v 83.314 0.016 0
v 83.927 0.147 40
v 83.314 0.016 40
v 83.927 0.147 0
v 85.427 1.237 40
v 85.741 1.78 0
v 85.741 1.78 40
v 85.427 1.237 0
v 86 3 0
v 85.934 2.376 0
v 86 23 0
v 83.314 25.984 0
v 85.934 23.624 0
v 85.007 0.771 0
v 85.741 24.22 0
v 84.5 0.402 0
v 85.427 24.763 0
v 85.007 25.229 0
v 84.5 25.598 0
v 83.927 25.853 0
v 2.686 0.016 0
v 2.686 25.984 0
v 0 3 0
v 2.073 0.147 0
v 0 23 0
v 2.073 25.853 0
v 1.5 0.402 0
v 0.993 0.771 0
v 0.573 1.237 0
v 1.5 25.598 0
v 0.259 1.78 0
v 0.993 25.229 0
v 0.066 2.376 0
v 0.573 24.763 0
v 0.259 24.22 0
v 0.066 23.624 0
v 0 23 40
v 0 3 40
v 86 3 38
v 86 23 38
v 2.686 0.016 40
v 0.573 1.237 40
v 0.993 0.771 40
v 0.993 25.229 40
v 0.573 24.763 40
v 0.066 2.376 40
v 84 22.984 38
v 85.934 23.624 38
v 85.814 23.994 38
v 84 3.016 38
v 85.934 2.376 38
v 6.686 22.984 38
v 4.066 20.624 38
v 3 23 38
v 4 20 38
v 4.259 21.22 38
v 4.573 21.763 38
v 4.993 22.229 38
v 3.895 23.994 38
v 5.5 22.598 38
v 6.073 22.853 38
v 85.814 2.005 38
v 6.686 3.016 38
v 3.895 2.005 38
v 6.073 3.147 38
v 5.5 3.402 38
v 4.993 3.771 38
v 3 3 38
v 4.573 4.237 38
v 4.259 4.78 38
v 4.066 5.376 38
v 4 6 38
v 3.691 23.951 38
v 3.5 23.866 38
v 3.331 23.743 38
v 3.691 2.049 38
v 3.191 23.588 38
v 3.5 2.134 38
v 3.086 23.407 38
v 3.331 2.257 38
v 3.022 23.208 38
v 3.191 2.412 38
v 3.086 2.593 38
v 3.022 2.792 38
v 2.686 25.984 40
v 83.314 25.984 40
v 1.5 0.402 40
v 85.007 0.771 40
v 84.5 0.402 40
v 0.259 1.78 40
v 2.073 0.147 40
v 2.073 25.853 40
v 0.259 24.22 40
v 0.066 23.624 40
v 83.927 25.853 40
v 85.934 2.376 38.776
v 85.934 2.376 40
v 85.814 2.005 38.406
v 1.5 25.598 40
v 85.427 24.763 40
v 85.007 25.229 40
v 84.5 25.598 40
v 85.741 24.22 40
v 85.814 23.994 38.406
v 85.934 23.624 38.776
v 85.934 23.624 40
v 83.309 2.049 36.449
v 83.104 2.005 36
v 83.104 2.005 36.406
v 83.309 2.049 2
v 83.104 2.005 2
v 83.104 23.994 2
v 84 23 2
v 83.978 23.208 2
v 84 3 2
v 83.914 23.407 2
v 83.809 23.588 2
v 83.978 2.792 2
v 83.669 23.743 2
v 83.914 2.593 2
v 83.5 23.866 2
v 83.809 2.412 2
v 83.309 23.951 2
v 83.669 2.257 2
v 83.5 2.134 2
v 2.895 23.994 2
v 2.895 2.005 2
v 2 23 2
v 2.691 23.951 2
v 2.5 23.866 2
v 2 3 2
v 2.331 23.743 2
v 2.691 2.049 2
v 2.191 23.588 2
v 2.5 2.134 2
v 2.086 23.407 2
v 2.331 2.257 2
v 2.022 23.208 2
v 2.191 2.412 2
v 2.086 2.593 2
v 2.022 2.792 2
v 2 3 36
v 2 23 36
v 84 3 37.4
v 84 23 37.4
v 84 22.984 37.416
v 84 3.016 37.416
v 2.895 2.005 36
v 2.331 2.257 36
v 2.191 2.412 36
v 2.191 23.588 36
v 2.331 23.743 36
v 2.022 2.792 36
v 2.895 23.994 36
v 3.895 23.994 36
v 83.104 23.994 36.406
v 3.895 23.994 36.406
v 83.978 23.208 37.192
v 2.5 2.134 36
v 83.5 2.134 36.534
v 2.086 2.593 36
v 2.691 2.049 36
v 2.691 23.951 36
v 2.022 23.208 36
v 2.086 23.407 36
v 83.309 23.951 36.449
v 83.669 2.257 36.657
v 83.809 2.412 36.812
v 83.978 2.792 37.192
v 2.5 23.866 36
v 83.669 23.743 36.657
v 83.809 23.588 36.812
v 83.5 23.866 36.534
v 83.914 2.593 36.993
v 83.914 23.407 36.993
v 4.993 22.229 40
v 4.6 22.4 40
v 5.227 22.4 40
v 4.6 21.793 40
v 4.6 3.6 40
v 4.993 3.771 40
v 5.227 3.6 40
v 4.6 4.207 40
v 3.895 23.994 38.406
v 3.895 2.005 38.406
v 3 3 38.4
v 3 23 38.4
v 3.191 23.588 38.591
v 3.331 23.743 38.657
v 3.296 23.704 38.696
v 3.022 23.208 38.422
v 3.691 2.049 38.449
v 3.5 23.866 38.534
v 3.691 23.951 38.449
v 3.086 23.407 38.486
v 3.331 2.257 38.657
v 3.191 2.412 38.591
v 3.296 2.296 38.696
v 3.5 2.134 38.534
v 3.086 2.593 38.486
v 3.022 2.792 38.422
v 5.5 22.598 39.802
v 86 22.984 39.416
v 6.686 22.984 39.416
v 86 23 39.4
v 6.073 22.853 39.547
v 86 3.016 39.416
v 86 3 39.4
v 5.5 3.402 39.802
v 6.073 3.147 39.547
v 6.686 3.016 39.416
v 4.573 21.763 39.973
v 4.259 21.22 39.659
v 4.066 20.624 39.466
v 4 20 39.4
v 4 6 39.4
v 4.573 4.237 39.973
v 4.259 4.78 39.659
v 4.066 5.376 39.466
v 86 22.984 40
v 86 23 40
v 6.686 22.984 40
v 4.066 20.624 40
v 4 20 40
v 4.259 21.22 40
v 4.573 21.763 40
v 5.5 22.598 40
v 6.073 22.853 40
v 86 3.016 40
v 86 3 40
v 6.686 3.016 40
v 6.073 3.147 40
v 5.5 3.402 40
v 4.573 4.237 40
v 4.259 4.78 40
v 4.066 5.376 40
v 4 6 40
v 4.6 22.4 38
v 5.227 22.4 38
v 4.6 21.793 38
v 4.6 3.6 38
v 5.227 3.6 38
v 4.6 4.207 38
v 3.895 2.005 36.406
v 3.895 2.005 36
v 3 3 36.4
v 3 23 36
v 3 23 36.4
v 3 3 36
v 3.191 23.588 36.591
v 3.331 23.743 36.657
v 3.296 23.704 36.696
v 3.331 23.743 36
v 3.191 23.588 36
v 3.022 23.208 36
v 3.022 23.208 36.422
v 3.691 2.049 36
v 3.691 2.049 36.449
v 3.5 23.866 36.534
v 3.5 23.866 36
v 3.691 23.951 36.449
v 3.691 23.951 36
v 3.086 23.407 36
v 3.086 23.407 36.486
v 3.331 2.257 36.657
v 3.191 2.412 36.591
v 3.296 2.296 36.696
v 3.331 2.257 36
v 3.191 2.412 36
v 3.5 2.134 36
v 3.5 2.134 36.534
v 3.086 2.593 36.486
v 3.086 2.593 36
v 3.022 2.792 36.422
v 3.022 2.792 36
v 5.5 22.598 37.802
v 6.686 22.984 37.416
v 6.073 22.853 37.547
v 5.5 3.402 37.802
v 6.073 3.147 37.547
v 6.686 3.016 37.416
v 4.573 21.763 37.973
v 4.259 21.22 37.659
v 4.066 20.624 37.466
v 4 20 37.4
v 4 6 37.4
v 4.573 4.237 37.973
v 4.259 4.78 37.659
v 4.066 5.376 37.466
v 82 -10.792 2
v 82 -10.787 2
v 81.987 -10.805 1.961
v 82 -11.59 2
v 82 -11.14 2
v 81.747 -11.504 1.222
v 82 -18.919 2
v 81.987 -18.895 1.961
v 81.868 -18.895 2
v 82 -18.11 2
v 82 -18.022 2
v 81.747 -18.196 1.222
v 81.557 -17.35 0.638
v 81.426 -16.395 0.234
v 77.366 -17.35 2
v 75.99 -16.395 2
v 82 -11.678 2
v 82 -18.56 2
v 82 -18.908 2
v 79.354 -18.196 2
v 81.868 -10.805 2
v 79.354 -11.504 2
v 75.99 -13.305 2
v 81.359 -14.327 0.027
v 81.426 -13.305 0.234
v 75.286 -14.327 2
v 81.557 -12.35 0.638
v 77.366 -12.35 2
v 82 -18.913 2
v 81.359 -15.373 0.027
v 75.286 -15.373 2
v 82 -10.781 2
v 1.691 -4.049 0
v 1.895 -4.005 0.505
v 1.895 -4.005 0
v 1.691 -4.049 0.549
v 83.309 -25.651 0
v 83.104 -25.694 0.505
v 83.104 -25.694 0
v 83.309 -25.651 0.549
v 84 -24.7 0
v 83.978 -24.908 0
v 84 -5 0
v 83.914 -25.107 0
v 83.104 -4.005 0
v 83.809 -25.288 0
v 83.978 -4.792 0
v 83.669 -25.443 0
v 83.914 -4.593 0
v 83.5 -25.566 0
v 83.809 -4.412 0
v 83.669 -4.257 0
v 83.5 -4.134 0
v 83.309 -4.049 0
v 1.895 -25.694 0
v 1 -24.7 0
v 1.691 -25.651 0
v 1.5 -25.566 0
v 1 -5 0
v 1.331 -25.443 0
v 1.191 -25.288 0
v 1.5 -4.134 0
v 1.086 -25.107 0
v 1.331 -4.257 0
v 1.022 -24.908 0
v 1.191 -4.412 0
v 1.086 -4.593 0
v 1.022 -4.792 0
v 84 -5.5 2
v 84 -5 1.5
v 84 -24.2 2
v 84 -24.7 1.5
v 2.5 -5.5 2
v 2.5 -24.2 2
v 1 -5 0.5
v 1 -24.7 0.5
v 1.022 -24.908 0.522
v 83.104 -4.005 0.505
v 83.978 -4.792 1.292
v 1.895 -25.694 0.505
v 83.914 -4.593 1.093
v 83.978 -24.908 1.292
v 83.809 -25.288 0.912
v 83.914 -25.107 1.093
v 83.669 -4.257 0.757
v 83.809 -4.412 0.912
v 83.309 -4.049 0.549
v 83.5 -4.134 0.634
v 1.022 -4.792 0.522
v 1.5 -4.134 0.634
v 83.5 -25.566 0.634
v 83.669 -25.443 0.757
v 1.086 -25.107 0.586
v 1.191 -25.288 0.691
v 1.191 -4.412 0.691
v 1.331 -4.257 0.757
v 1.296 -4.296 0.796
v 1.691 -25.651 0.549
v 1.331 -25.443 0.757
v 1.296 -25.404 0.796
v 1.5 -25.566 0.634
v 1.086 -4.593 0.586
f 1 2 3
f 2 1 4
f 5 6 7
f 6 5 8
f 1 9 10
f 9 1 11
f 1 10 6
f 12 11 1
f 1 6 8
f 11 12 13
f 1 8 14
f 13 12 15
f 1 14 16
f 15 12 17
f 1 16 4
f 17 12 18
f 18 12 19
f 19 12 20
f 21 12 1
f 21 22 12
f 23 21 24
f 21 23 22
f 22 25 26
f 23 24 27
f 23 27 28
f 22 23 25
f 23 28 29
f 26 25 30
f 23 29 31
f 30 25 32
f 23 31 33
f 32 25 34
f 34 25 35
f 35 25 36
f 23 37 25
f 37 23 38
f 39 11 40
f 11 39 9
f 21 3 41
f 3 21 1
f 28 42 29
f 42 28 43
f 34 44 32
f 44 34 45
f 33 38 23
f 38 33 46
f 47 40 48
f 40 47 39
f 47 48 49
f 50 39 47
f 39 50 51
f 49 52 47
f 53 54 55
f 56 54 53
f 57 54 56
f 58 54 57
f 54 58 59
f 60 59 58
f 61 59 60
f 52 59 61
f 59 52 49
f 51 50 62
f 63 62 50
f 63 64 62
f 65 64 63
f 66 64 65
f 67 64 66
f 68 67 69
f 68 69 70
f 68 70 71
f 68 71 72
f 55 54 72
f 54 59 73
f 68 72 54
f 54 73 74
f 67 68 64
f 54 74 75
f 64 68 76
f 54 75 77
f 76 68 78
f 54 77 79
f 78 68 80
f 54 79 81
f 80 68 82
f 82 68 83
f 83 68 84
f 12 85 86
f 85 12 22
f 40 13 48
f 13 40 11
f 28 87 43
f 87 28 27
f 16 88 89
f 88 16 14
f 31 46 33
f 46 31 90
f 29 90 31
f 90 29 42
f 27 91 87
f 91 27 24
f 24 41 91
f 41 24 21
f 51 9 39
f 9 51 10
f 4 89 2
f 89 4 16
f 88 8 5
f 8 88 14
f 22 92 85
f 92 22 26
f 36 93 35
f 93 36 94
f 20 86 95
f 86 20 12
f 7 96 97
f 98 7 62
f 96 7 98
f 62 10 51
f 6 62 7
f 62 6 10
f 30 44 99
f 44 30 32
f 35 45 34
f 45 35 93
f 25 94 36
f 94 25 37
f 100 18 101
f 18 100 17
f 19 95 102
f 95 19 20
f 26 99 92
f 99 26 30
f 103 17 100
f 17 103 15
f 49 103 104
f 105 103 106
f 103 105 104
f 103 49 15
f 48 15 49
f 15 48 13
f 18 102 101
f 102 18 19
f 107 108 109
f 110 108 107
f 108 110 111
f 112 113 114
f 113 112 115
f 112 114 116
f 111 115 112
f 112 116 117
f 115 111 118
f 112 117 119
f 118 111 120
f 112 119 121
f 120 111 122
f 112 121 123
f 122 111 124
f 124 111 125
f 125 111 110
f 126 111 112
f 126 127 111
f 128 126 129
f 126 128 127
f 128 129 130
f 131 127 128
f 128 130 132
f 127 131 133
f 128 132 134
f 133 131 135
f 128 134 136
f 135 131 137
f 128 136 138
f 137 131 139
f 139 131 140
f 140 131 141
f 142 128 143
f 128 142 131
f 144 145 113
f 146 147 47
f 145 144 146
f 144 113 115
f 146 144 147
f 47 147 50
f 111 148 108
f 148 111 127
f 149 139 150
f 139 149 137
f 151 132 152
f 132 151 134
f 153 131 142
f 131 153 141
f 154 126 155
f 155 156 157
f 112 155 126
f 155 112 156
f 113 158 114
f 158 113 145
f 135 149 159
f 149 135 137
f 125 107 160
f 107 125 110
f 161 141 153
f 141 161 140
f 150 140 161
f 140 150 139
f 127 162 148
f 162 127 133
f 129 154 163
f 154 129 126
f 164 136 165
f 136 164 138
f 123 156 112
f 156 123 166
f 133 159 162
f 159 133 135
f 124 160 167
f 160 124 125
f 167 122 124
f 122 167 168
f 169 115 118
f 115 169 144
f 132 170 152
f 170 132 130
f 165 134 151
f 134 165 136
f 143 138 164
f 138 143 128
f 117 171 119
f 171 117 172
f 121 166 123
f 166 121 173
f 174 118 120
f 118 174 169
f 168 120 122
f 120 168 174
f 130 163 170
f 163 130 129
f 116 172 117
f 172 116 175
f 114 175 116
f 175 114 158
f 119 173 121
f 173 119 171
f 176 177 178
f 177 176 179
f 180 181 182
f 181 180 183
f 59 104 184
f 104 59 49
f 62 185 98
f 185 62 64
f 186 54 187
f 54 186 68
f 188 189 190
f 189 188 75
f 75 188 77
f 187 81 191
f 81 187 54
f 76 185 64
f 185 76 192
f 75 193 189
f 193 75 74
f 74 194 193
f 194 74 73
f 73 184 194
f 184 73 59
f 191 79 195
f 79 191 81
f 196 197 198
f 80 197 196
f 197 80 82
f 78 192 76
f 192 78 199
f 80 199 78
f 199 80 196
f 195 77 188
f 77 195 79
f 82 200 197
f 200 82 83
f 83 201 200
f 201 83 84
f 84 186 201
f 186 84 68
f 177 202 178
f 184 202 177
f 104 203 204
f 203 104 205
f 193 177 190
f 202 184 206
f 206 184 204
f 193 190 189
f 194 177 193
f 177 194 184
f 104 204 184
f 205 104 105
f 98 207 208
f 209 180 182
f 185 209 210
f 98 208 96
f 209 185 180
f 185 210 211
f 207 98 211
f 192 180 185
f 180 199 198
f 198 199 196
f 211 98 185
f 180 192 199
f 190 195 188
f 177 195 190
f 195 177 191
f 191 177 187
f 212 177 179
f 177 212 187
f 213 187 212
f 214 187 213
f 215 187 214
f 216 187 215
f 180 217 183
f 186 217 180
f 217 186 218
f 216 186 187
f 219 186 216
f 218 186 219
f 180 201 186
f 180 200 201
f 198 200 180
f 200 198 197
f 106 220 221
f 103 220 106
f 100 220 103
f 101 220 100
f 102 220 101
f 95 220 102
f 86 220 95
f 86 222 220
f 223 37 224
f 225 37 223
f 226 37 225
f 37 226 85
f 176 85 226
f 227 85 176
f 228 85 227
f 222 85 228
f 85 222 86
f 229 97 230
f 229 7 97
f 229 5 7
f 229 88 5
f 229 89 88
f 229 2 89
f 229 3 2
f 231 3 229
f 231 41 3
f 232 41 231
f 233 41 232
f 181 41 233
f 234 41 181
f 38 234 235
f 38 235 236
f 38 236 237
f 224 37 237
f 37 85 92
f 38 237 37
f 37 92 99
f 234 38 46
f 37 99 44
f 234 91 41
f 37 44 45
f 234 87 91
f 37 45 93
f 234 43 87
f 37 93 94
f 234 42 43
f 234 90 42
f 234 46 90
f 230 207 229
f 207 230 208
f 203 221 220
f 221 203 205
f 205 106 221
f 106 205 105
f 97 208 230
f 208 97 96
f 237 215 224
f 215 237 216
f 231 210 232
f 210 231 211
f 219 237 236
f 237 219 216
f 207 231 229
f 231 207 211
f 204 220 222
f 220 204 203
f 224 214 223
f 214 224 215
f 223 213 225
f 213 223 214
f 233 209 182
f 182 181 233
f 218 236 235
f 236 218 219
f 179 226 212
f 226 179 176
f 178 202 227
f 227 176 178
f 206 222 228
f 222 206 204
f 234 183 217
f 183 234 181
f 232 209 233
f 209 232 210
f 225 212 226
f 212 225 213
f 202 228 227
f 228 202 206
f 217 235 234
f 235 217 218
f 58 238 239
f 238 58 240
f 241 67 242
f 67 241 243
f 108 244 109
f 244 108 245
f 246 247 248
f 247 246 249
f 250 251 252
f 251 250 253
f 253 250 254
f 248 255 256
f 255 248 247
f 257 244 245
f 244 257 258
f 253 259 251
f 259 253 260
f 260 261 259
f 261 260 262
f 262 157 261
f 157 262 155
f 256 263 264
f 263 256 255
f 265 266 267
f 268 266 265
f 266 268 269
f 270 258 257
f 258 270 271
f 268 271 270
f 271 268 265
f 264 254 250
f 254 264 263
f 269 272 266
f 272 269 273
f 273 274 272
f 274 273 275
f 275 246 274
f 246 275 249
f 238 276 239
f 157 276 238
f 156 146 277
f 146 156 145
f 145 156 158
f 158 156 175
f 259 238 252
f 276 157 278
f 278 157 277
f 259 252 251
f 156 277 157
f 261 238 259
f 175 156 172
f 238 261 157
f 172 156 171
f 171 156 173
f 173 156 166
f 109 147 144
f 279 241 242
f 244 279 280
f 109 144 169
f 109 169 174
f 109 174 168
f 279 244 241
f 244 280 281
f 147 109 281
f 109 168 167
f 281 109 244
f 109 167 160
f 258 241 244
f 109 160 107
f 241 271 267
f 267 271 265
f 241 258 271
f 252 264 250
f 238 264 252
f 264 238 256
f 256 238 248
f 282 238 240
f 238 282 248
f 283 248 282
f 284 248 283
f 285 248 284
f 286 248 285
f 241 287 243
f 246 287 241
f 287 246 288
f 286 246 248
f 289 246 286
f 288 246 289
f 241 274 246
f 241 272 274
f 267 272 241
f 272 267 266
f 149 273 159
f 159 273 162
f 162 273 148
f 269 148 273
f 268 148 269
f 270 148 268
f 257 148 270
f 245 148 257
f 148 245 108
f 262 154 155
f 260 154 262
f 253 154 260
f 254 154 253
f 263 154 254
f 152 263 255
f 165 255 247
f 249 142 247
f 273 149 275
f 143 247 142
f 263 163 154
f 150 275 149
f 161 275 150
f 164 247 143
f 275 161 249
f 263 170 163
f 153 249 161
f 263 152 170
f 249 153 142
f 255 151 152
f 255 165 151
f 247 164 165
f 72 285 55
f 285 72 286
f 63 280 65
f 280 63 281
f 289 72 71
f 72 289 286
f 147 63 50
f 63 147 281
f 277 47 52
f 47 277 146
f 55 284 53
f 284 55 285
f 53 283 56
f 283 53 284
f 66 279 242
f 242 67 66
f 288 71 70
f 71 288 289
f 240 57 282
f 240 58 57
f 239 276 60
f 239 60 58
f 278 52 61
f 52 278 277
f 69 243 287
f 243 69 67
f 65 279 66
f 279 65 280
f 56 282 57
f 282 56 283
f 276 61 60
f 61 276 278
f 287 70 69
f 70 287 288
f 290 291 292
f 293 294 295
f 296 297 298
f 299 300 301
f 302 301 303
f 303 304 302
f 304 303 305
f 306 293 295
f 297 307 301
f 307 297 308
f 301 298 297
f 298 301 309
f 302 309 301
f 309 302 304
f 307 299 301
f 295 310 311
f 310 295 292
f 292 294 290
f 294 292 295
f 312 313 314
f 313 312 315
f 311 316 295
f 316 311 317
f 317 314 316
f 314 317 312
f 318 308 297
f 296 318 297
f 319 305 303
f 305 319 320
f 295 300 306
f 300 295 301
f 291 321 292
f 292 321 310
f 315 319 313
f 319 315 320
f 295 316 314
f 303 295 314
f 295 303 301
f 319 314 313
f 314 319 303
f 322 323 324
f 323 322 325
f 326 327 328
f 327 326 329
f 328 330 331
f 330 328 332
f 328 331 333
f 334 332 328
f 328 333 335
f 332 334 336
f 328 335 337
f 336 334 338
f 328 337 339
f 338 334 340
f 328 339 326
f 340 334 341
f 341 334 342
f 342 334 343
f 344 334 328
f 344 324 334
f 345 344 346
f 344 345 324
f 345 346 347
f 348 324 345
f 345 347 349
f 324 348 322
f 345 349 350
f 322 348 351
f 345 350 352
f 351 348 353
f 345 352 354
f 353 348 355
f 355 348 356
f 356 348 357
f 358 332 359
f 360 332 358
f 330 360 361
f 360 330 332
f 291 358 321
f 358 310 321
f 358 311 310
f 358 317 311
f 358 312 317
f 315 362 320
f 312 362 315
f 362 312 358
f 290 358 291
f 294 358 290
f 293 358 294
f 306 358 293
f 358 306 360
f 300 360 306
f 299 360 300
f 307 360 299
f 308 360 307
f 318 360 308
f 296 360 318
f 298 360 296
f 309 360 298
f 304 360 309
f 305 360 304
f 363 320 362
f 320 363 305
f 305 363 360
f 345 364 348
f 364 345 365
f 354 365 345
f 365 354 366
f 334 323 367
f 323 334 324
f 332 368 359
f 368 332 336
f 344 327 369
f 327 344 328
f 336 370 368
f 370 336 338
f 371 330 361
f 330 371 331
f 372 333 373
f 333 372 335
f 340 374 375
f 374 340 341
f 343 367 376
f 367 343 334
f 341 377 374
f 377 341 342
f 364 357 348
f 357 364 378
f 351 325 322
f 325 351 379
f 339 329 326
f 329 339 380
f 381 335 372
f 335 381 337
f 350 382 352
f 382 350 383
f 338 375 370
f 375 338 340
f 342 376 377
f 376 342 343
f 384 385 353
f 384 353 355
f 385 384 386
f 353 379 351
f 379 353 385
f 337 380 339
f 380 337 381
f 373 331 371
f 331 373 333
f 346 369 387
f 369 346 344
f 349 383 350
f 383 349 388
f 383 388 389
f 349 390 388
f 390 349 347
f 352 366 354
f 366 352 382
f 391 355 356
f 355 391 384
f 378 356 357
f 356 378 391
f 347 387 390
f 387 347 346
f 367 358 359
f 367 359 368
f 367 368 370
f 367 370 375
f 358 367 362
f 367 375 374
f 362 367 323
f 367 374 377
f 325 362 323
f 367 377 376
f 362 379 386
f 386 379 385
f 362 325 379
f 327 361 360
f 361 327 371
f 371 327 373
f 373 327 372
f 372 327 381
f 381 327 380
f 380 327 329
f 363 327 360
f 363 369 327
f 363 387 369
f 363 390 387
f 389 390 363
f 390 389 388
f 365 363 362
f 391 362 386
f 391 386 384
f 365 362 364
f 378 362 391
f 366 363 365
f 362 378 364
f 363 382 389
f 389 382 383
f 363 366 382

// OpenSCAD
itemsShown="both"; // [both,box,lid]
boxLength=86;
boxWidth=26; //41
boxHeight=40; //25
cornerRadius=3;
wallThickness=2;
bottomThickness=2;
lidThickness=2;
lidClearance=0.3;
lidEdgeThickness=0.5;
// Notch in the lid
withNotch=true;//true;//[true:false]

/* [Global] */
if (itemsShown=="box") showBox();
if (itemsShown=="lid") showLid();
if (itemsShown=="both"){showBox();showLid();}

module showLid(){
	translate ([0, -2*wallThickness, 0]) 
	roundBoxLid(l=boxLength-wallThickness,
				w=boxWidth-2*wallThickness-lidClearance,
				h=lidThickness,
				et=lidEdgeThickness,
				r=cornerRadius-wallThickness,
				notch=withNotch);
}

module showBox(){
	round_box(l=boxLength,
			  w=boxWidth,
			  h=boxHeight,
			  bt=bottomThickness,
			  wt=wallThickness,
			  lt=lidThickness,
			  r=cornerRadius);
}

module round_box(l=40,w=30,h=30,bt=2,wt=2,lt=2,r=5,){
	difference() { 
		round_cube(l=l,w=w,h=h-lt,r=r);
		translate ([wt, wt, bt]) 
		round_cube(l=l-wt*2,w=w-wt*2,h=h,r=r-wt);
	}
	//use two box rims. one to make a slope to support the lid
	roundBoxRim();
	translate ([0, 0, -wt]) roundBoxRim();
}

module roundBoxRim(l=boxLength,
				   w=boxWidth,
				   h=boxHeight,
				   et=lidEdgeThickness,
				   r=cornerRadius,
				   wt=wallThickness,
				   lt=lidThickness){
	difference() { 
		translate ([0, 0, h-lt]) 
		round_cube(l=l,w=w,h=lt,r=r);
		translate ([wt+lt,wt+lt-et*2,h-lt-0.1]) 
		round_cube(l=l*2,w=w-2*(wt+lt)+4*et,h=lt+0.2,r=r-wt+lt);

		//subtract out a lid to make the ledge
		translate ([wt, w-wt, h-lt-0.1])
		roundBoxLid(l=l*2,w=w-2*wt,h=lt+0.1,wt=wt,t=lt,et=0.5,r=r-wt,notch=false);
	}
}

module roundBoxLid(l=40,w=30,h=3,wt=2,t=2,et=0.5,r=5,notch=true){
	translate ([l, 0, 0]) 
	rotate (a = [0, 0, 180]) 
	difference(){
		round_cube(l=l-1,w=w,h=h,t=t,r=r);

		translate ([-1, 0, et]) rotate (a = [45, 0, 0])  cube (size = [l+2, h*2, h*2]); 
		translate ([-1, w, et]) rotate (a = [45, 0, 0])  cube (size = [l+2, h*2, h*2]); 
		translate ([l-1, -1, et]) rotate (a = [45, 0, 90]) cube (size = [w+2, h*2, h*2]); 
		if (notch==true){
			translate([2,w/2,h+0.001]) thumbNotch(10/2,72,t);
		}
	}
}

module thumbNotch(
	thumbR=12/2,
	angle=72,
	notchHeight=2){

	size=10*thumbR;

	rotate([0,0,90])
	difference(){
		translate([0,
					(thumbR*sin(angle)-notchHeight)/tan(angle),
					 thumbR*sin(angle)-notchHeight])
		rotate([angle,0,0])
		cylinder(r=thumbR,h=size,$fn=30);

		translate([-size,-size,0])
		cube(size*2);
	}
}

module round_cube(l=40,w=30,h=20,r=5,$fn=30){
	hull(){ 
		translate ([r, r, 0]) cylinder (h = h, r=r);
		translate ([r, w-r, 0]) cylinder (h = h, r=r);
		translate ([l-r,w-r, 0]) cylinder (h = h, r=r);
		translate ([l-r, r, 0]) cylinder (h = h, r=r);
	}
}
